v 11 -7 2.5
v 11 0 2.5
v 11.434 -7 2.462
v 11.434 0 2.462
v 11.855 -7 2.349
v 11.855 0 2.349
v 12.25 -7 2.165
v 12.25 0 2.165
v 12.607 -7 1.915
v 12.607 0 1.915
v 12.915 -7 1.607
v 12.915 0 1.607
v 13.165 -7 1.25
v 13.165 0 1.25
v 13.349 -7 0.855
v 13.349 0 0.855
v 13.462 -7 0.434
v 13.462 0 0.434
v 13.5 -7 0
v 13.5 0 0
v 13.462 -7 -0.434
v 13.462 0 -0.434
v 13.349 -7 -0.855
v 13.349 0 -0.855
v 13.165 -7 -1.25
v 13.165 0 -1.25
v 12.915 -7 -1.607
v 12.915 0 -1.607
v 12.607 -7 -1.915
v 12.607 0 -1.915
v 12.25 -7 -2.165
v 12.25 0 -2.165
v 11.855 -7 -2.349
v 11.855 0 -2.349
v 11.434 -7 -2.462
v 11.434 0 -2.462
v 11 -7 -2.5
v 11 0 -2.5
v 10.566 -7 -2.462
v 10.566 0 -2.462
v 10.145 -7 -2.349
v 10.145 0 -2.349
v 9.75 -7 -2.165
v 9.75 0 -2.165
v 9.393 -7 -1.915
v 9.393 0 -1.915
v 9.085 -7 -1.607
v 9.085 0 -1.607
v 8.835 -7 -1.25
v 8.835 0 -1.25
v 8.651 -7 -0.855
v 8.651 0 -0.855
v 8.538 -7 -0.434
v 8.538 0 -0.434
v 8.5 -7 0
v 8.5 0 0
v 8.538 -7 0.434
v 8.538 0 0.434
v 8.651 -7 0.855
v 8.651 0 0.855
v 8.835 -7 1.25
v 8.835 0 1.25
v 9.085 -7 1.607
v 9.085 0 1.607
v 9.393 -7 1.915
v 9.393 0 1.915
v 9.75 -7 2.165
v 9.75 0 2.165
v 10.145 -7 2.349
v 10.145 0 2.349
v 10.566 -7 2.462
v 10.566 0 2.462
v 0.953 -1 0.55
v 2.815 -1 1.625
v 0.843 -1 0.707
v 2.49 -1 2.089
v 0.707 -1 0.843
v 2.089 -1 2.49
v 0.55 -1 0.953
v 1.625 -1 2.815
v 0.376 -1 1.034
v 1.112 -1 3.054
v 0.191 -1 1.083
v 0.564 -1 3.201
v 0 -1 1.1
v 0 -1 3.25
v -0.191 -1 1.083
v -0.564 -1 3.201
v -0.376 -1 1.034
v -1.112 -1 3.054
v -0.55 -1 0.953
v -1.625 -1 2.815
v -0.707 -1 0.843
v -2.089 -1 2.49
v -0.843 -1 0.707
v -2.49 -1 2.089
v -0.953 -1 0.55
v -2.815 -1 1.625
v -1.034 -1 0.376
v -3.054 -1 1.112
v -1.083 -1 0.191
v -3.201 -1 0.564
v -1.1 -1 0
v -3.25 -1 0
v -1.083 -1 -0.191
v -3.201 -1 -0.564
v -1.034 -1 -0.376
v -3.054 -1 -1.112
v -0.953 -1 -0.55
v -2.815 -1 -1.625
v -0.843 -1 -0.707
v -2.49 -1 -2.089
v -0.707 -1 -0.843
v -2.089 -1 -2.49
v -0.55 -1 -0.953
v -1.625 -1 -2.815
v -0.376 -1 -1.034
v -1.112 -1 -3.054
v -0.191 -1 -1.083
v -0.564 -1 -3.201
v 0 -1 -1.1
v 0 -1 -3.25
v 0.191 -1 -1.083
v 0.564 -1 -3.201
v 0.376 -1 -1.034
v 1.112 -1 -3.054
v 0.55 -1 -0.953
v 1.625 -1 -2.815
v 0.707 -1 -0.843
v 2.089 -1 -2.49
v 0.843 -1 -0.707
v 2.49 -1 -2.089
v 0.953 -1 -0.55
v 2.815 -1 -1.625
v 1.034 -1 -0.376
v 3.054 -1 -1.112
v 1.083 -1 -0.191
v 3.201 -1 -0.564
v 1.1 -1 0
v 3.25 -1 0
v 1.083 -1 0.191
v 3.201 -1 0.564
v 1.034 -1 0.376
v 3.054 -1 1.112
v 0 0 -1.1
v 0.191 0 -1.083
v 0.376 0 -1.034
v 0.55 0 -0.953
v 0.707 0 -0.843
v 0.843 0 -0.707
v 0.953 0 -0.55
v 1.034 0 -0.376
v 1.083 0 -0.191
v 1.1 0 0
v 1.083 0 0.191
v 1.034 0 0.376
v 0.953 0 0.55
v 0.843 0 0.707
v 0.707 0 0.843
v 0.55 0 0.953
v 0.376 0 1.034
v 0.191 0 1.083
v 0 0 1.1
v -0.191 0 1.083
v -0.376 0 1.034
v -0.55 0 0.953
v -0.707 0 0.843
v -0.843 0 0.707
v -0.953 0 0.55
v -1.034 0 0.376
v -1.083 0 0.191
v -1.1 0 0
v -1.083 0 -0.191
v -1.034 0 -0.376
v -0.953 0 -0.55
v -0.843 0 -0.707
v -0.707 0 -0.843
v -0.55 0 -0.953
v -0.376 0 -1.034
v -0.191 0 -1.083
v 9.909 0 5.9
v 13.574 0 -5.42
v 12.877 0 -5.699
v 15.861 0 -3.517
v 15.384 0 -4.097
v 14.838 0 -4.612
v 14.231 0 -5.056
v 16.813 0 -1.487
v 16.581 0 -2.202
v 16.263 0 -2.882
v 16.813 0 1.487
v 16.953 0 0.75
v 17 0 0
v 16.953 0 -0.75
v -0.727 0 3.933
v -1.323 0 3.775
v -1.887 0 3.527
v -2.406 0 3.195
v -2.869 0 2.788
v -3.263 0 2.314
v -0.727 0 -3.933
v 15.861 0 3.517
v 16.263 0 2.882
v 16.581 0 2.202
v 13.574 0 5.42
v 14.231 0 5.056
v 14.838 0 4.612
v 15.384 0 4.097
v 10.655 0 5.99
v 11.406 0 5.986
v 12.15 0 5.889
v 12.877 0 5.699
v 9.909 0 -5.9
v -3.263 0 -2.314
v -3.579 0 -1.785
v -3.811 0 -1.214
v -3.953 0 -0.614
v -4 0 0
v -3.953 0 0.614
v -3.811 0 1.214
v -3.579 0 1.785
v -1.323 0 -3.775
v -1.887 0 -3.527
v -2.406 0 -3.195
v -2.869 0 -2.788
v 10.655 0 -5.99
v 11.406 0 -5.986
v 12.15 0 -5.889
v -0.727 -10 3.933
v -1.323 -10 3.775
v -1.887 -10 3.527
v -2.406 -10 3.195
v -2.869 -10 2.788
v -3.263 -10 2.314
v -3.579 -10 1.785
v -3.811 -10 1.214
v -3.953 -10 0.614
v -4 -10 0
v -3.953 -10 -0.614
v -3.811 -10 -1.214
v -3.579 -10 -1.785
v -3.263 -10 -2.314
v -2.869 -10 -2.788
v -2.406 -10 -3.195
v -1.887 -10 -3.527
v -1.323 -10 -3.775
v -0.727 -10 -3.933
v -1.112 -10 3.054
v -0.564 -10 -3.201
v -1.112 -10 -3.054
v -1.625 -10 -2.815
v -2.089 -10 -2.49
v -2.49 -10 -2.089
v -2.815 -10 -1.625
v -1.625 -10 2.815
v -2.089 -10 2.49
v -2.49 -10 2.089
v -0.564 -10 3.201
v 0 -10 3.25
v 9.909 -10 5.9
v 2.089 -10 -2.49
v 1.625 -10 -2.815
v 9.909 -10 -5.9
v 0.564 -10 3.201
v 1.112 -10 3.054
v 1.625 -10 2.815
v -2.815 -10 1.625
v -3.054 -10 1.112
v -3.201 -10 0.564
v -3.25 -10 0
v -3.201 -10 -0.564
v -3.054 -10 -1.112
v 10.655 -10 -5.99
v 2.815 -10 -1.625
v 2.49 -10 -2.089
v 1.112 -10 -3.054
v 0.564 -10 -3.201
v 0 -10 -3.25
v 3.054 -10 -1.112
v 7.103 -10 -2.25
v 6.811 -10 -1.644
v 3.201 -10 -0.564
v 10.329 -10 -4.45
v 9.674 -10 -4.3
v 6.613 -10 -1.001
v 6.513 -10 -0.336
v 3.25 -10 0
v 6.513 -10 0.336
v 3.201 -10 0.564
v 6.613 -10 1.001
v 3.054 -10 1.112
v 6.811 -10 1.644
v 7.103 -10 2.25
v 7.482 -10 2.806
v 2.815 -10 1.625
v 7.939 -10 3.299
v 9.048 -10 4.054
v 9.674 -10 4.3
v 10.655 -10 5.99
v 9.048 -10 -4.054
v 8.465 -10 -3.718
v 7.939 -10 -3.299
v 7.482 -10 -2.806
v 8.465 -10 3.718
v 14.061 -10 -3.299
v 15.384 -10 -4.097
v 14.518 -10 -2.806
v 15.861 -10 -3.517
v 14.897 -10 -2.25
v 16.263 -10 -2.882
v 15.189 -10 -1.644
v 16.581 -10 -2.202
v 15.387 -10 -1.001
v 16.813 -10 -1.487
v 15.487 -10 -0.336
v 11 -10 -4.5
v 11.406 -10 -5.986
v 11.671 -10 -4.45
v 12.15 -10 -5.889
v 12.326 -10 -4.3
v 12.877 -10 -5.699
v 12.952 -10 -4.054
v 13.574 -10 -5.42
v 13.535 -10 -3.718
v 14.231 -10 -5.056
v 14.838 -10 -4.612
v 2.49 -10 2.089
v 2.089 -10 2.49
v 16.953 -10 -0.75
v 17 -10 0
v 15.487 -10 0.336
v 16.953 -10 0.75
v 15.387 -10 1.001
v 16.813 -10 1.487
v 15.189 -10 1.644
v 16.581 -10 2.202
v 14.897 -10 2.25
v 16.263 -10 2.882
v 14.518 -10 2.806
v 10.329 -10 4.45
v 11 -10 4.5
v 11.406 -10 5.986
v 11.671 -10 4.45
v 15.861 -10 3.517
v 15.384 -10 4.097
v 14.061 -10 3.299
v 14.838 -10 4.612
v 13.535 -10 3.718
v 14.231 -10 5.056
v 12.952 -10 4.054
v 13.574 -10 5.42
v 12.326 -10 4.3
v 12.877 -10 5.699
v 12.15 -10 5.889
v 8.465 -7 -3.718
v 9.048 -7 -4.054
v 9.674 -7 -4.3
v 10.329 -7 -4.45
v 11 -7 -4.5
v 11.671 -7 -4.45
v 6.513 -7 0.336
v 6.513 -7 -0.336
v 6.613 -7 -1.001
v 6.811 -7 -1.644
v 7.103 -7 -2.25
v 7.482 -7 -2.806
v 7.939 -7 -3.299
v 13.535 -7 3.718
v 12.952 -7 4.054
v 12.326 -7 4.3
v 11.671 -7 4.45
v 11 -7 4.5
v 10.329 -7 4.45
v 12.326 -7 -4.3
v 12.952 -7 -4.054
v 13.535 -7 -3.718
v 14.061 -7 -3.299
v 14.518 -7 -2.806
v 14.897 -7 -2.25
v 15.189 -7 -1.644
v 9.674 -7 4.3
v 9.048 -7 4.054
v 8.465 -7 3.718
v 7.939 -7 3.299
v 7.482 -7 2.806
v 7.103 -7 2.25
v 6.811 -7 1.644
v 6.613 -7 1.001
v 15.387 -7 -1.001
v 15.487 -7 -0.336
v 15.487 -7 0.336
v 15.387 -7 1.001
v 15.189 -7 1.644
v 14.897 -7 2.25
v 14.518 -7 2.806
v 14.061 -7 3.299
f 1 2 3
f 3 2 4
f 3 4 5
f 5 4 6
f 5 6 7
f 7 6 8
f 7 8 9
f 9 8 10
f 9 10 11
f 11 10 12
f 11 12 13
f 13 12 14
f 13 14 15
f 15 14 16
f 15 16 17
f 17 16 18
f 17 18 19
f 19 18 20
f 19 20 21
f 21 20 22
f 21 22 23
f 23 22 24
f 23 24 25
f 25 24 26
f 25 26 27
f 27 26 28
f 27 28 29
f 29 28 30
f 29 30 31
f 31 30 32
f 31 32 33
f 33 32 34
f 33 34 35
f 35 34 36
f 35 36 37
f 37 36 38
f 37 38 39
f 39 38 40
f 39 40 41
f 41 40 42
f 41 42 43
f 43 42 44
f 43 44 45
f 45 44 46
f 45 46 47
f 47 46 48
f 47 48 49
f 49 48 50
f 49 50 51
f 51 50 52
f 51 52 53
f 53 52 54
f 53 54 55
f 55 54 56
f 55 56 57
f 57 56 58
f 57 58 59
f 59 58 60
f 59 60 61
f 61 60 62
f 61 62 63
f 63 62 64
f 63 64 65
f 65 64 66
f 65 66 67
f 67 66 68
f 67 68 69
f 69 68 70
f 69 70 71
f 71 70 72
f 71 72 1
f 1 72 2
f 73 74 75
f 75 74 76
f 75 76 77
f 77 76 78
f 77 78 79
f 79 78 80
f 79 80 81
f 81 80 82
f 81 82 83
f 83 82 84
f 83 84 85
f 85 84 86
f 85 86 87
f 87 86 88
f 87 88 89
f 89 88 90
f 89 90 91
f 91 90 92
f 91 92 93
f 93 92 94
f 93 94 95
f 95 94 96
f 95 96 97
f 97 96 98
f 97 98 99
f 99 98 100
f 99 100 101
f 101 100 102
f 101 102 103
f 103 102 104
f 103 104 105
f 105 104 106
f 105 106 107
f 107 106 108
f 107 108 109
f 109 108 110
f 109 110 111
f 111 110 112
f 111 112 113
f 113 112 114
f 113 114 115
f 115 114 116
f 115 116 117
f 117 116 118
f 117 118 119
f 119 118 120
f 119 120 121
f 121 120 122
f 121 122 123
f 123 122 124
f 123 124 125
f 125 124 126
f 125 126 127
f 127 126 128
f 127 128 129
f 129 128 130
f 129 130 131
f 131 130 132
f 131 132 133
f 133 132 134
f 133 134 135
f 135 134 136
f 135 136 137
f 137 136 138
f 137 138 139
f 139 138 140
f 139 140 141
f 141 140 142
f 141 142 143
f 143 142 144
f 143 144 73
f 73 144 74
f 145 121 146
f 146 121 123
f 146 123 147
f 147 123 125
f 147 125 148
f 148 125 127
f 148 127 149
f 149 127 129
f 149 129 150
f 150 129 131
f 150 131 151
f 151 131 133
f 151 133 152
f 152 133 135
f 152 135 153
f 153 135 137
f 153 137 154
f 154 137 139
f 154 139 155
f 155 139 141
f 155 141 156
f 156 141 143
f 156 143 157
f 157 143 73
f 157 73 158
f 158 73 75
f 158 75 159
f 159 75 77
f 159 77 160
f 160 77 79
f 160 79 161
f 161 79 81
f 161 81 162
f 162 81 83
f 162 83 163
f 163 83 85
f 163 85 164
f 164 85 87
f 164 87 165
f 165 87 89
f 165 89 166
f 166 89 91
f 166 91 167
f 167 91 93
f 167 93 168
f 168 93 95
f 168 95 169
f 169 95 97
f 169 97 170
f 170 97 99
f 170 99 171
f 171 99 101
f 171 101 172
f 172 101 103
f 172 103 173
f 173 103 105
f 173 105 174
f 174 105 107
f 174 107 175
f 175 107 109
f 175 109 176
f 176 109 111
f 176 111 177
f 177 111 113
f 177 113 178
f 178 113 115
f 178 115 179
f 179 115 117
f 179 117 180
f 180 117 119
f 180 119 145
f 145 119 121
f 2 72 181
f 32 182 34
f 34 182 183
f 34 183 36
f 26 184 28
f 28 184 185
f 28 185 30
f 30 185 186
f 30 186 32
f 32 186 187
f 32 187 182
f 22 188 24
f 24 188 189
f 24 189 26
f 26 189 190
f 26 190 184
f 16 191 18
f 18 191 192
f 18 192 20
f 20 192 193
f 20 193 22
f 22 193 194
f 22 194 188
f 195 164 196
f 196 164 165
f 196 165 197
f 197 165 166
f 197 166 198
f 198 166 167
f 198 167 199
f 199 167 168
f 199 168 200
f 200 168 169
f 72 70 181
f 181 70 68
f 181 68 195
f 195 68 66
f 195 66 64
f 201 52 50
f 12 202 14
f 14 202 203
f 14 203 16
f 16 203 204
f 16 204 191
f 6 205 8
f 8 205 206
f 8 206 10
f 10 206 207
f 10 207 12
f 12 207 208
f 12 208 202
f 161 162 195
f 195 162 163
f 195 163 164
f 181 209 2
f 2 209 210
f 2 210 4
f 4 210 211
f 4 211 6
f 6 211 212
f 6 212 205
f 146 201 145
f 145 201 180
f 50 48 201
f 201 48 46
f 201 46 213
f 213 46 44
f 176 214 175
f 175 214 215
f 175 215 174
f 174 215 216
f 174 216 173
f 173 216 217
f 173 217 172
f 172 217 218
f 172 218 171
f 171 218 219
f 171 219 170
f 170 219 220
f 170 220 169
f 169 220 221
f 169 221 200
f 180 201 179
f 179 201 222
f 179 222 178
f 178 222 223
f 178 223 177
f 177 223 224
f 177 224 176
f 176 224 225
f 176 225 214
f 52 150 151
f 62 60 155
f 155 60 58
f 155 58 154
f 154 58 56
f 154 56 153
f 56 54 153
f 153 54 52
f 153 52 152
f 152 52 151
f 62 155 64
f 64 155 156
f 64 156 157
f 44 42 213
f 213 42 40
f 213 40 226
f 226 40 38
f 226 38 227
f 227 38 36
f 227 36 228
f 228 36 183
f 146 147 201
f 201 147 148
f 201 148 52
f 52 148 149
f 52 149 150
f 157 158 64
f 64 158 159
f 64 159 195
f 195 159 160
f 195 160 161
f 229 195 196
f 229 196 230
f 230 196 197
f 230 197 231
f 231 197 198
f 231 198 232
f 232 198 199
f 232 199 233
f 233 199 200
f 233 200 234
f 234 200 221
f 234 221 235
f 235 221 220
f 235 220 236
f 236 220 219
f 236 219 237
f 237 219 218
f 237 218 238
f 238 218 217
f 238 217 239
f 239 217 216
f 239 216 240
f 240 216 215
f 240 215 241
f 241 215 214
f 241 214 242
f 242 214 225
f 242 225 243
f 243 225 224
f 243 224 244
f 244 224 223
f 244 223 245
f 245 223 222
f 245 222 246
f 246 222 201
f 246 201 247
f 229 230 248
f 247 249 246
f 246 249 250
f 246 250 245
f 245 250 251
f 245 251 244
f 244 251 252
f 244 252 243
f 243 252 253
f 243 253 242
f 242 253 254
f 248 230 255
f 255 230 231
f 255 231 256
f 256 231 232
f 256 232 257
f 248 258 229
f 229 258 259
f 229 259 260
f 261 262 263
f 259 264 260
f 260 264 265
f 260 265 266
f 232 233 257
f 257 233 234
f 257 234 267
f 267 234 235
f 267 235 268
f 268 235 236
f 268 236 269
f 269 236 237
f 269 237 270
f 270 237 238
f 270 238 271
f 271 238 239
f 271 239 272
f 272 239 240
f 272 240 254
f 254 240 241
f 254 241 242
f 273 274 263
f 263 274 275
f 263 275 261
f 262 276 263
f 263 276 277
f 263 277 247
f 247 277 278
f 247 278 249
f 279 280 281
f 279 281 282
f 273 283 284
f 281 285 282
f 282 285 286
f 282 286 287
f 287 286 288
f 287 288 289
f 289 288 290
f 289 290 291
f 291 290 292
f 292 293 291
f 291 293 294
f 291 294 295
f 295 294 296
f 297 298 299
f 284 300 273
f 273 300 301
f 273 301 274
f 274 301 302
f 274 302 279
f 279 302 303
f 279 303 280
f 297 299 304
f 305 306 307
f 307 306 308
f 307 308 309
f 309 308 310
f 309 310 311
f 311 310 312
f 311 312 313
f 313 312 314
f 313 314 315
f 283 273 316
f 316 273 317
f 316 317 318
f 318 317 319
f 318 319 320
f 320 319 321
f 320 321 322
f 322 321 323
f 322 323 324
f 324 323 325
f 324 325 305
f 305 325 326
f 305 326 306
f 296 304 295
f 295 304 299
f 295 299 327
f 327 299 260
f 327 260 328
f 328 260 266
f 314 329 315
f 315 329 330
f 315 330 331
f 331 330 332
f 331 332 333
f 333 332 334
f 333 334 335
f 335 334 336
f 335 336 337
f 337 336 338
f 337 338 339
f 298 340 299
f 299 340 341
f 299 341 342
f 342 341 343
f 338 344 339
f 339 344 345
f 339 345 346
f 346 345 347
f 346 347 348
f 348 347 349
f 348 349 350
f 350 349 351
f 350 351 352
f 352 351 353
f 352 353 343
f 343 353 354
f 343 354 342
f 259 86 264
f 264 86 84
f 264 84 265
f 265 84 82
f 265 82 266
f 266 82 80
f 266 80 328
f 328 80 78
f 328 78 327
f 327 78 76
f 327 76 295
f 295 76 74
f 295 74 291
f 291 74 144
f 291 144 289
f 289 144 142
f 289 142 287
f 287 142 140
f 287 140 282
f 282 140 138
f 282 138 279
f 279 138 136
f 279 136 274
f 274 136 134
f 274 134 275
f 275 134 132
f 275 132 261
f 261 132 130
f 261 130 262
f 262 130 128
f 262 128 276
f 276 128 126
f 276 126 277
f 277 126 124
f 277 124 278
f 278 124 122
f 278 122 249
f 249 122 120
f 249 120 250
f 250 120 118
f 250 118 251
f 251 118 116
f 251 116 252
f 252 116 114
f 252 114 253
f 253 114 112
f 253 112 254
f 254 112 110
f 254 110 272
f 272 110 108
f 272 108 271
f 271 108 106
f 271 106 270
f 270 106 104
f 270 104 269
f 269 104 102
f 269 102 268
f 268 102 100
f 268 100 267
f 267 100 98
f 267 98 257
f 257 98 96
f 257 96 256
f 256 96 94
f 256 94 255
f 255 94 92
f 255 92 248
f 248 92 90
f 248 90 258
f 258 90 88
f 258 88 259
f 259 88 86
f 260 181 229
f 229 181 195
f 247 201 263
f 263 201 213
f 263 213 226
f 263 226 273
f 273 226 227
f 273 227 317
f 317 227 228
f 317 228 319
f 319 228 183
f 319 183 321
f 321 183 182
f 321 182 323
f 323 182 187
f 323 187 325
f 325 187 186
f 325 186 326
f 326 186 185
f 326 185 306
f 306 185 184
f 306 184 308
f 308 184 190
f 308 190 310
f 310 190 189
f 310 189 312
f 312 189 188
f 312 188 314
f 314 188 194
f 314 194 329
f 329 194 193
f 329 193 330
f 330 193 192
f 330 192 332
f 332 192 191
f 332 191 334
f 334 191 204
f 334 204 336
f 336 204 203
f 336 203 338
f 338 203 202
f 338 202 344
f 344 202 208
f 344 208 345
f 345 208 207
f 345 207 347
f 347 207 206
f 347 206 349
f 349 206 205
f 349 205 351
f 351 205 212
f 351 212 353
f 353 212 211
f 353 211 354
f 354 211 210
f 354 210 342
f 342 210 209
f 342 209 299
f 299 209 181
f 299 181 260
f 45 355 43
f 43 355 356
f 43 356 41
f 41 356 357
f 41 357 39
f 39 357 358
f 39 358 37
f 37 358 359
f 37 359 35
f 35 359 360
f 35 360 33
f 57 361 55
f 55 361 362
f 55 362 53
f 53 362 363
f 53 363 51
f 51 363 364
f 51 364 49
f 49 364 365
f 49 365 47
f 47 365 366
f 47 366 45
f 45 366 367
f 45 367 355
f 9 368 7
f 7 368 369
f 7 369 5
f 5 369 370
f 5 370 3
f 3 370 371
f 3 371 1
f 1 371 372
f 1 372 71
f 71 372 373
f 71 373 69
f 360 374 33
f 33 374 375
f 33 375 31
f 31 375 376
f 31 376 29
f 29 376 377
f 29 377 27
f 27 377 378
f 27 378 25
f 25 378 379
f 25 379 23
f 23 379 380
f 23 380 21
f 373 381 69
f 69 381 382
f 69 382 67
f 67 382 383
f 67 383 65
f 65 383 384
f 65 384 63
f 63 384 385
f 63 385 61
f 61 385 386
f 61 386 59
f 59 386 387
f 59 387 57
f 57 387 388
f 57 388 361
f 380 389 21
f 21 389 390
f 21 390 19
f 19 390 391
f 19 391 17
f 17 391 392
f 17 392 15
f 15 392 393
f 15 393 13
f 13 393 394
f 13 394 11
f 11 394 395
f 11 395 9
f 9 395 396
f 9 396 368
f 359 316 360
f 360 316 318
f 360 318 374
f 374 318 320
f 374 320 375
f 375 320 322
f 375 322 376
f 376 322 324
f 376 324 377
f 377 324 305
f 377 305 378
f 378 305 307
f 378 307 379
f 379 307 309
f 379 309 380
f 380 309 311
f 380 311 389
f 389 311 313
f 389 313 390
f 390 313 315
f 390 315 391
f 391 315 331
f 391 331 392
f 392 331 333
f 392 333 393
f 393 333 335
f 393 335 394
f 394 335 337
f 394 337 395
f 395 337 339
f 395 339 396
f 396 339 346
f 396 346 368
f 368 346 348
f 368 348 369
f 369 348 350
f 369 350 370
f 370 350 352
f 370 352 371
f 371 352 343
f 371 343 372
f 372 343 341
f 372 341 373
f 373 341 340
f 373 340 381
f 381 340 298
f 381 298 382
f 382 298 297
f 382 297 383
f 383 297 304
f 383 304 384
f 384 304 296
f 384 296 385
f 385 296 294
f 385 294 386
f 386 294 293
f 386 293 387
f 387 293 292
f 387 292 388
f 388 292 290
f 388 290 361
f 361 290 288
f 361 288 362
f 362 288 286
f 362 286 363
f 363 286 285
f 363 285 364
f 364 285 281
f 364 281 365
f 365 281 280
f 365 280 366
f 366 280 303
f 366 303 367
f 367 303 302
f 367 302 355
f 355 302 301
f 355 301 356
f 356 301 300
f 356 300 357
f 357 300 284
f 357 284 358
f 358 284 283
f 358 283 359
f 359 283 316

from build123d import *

# Parameters (mm, degrees)
SKETCH_1_R          = 1.5
SKETCH_1_R_2        = 1.1
EXTRUDE_1_DEPTH     = 6.5
EXTRUDE_START       = 1
SKETCH_2_R          = 4
SKETCH_2_R_2        = 1.1
EXTRUDE_2_DEPTH     = 1
EXTRUDE_START_2     = 9
SKETCH_3_R          = 4
SKETCH_3_R_2        = 3.25
EXTRUDE_3_DEPTH     = 9
EXTRUDE_START_3     = -10
SKETCH_4_R          = 2.5
EXTRUDE_4_DEPTH     = 10
SKETCH_5_R          = 4.5
CUT_EXTRUDE_1_DEPTH = 3
CUT_EXTRUDE_START   = -6.5
SKETCH_7_R          = 1.5
CUT_EXTRUDE_2_DEPTH = 6.5


with BuildPart() as part:
    # Эскиз1 → Бобышка-Вытянуть1 (new body)
    with BuildSketch(Plane(origin=(0, 0, 0), x_dir=(1, 0, 0), z_dir=(0, 1, 0))):
        with Locations(Location((0, 0, 0), (0, 0, 90))):
            Circle(SKETCH_1_R)
        with Locations(Location((0, 0, 0), (0, 0, 90))):
            Circle(SKETCH_1_R_2, mode=Mode.SUBTRACT)
    extrude(amount=EXTRUDE_1_DEPTH)

    # Эскиз2 → Бобышка-Вытянуть2 (add)
    with BuildSketch(Plane.XZ.offset(EXTRUDE_START)):
        with Locations(Location((0, 0, 0), (0, 0, 270))):
            Circle(SKETCH_2_R)
        with Locations(Location((0, 0, 0), (0, 0, 270))):
            Circle(SKETCH_2_R_2, mode=Mode.SUBTRACT)
    extrude(amount=-EXTRUDE_2_DEPTH)

    # Эскиз3 → Бобышка-Вытянуть3 (add)
    with BuildSketch(Plane.XZ.offset(1).offset(EXTRUDE_START_2)):
        with Locations(Location((0, 0, 0), (0, 0, 270))):
            Circle(SKETCH_3_R)
        with Locations(Location((0, 0, 0), (0, 0, 270))):
            Circle(SKETCH_3_R_2, mode=Mode.SUBTRACT)
    extrude(amount=-EXTRUDE_3_DEPTH)

    # Эскиз4 → Бобышка-Вытянуть4 (add)
    with BuildSketch(Plane(origin=(0, 0, 0), x_dir=(1, 0, 0), z_dir=(0, 1, 0)).offset(EXTRUDE_START_3)):
        with BuildLine():
            ThreePointArc((-0.727272727, 3.933328664), (4, 0), (-0.727272727, -3.933328664))
            Line((-0.727272727, -3.933328664), (9.909090909, -5.899992996))
            ThreePointArc((9.909090909, -5.899992996), (17, 0), (9.909090909, 5.899992996))
            Line((9.909090909, 5.899992996), (-0.727272727, 3.933328664))
        make_face()
        with Locations(Location((11, 0, 0), (0, 0, 270))):
            Circle(SKETCH_4_R, mode=Mode.SUBTRACT)
    extrude(amount=EXTRUDE_4_DEPTH)

    # Эскиз5 → Вырез-Вытянуть1 (cut)
    with BuildSketch(Plane.XZ.offset(10)):
        with Locations(Location((11, 0, 0), (0, 0, 270))):
            Circle(SKETCH_5_R)
    extrude(amount=-CUT_EXTRUDE_1_DEPTH, mode=Mode.SUBTRACT)

    # Эскиз7 → Вырез-Вытянуть2 (cut)
    with BuildSketch(Plane(origin=(0, 6.5, 0), x_dir=(1, 0, 0), z_dir=(0, 1, 0)).offset(CUT_EXTRUDE_START)):
        Circle(SKETCH_7_R)
    extrude(amount=CUT_EXTRUDE_2_DEPTH, mode=Mode.SUBTRACT)


solid = part.part
